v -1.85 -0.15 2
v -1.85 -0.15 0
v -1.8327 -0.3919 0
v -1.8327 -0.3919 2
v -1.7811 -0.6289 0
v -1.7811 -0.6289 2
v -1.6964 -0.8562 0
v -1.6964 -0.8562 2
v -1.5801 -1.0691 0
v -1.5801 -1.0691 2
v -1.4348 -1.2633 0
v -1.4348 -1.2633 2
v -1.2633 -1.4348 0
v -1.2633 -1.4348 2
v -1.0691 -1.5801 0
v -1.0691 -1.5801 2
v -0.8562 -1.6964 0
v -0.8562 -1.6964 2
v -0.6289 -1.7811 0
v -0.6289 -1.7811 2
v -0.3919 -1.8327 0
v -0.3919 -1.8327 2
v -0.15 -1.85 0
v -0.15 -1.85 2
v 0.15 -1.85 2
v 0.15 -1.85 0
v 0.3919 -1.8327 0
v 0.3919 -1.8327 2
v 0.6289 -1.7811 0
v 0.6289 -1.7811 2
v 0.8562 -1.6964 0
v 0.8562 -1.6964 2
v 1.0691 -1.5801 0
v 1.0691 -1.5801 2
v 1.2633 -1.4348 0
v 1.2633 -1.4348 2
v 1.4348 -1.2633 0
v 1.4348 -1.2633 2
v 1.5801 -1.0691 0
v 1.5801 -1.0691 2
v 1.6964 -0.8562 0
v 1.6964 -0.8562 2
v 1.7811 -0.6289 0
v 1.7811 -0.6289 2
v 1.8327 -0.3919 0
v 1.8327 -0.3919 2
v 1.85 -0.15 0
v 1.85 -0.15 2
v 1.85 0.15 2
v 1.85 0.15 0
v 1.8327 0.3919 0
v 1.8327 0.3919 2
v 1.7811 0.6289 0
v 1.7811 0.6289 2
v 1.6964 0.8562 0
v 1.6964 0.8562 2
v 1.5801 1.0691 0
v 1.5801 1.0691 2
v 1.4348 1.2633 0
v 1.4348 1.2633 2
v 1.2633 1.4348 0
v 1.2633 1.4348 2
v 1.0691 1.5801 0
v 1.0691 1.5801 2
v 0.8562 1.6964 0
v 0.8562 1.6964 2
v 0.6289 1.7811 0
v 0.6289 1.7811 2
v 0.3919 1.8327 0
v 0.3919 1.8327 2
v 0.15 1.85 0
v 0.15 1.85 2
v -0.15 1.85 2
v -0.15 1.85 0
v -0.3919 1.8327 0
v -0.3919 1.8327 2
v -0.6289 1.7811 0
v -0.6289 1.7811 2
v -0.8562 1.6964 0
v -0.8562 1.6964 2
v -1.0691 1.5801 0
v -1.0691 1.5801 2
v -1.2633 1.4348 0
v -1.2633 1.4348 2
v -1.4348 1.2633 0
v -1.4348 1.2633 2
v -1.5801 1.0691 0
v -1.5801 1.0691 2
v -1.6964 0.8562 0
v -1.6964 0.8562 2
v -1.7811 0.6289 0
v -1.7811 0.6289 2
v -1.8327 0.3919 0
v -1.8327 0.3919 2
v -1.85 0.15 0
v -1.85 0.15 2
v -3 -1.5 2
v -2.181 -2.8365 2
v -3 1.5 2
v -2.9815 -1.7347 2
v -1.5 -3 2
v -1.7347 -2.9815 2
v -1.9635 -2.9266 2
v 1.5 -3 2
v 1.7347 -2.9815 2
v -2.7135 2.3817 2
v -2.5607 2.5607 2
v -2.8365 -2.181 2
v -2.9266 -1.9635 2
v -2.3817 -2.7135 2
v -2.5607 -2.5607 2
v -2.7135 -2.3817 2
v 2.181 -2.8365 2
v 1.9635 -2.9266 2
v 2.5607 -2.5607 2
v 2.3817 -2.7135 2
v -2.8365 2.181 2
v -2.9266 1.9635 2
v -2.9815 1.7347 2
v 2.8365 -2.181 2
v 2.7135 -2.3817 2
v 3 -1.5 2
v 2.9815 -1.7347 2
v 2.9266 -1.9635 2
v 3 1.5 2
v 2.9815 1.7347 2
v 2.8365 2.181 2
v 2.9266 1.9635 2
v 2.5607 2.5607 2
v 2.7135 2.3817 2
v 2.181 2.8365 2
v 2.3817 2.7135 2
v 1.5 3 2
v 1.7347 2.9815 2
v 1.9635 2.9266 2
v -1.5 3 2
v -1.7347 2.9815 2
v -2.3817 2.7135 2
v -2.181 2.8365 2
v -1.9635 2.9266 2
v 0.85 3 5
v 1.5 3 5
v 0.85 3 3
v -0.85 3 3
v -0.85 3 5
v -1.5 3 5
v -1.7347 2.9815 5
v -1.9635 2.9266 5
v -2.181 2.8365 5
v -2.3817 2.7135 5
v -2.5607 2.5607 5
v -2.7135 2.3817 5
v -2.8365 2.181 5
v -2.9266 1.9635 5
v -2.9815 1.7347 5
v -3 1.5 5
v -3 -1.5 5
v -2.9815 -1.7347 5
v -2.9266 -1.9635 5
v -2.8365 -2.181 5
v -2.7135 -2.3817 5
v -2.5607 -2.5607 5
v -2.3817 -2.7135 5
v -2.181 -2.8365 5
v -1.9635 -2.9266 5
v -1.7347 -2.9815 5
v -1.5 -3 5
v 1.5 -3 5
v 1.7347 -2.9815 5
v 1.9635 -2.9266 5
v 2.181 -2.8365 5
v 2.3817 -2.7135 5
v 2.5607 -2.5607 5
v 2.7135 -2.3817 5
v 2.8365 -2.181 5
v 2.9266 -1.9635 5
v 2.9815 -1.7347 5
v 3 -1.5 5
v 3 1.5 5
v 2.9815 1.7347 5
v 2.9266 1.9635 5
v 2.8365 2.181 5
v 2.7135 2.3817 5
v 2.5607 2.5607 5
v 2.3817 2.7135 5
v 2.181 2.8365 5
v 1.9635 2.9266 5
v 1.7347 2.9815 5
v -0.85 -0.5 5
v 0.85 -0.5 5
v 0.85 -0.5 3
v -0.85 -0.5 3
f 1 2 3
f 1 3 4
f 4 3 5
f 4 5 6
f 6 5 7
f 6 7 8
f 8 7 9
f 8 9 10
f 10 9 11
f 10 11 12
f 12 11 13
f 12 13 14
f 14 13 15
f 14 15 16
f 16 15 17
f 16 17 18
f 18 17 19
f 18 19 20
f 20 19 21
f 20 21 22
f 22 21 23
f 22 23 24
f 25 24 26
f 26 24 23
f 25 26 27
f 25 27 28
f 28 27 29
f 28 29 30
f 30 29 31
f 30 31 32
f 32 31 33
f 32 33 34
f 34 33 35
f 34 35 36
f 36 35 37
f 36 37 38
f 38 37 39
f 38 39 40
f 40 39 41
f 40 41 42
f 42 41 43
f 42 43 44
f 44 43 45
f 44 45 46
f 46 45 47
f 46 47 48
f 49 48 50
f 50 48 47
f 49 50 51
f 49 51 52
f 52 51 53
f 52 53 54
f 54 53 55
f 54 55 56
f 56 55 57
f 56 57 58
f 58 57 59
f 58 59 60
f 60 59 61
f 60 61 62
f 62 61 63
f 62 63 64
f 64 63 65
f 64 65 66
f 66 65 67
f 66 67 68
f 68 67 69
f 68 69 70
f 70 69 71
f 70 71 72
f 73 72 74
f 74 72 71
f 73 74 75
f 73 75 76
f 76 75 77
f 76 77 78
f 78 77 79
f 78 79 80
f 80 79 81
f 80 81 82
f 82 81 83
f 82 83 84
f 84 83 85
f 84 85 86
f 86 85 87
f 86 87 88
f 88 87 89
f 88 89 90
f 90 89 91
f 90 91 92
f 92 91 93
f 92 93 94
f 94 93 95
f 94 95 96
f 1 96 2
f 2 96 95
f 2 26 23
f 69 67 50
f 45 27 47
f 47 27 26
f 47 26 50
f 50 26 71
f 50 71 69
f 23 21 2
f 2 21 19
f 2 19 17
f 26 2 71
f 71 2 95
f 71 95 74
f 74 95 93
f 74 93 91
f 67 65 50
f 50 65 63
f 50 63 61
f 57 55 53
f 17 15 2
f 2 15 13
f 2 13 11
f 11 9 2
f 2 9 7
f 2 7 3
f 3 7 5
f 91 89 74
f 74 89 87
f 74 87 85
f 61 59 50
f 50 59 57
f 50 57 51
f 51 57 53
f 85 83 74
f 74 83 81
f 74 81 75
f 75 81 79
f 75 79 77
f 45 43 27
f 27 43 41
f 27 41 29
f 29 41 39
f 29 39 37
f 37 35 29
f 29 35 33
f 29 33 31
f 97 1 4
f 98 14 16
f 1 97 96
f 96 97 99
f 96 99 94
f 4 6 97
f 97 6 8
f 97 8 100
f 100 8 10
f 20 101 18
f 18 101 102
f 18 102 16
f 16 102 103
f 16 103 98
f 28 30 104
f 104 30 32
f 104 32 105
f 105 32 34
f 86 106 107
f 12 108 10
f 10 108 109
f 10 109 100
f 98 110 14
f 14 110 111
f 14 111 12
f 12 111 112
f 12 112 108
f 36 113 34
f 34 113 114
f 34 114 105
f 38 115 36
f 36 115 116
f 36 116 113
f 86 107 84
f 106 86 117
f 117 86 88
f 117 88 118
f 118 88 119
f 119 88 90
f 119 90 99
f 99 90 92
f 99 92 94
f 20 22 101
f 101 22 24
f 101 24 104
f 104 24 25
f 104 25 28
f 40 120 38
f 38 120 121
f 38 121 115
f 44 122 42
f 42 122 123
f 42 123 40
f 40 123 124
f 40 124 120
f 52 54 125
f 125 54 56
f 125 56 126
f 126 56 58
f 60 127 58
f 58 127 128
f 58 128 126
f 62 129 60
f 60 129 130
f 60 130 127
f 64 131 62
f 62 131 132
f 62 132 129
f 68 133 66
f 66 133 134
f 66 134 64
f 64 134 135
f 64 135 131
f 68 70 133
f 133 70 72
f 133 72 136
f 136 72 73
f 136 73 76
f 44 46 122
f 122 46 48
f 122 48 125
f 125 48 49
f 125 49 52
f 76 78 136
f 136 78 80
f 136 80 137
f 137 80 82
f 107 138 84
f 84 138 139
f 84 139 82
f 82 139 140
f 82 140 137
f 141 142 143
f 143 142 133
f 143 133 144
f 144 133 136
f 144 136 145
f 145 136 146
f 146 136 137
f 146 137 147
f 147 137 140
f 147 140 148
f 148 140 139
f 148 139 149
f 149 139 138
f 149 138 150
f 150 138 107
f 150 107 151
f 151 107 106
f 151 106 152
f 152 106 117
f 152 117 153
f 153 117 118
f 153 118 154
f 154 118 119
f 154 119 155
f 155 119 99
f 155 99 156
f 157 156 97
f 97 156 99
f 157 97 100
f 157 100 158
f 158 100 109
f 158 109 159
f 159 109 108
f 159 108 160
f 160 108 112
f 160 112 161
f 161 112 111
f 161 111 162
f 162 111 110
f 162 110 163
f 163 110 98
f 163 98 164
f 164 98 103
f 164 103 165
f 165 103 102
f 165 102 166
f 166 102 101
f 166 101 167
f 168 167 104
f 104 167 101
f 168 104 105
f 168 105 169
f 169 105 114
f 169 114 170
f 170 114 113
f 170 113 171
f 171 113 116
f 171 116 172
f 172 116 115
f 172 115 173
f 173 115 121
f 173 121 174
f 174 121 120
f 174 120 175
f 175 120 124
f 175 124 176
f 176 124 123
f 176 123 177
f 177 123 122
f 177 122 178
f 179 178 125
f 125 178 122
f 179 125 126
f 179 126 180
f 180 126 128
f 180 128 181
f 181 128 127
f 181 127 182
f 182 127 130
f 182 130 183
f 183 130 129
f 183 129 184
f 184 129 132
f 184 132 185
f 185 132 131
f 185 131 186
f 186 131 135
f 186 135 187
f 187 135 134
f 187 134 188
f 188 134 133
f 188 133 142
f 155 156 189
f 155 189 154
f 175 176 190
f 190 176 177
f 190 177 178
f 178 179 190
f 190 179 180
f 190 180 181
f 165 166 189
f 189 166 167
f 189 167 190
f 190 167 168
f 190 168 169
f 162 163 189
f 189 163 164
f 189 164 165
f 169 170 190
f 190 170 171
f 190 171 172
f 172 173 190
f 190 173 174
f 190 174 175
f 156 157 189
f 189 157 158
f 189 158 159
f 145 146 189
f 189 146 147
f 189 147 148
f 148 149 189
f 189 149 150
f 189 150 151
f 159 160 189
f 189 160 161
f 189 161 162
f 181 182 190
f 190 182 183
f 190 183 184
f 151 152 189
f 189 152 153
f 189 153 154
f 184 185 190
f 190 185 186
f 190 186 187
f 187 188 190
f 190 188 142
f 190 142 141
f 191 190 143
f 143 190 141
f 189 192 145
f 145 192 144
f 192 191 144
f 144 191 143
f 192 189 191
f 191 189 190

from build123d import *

# Parameters (mm, degrees)
EXTRUDE_1_DEPTH     = 2
EXTRUDE_2_DEPTH     = 3
SKETCH_4_W          = 1.7
SKETCH_4_H          = 2
CUT_EXTRUDE_1_DEPTH = 3.5


with BuildPart() as part:
    # Эскиз1 → Бобышка-Вытянуть1 (new body)
    with BuildSketch(Plane.XY):
        with BuildLine():
            Line((-0.15, -1.85), (0.15, -1.85))
            ThreePointArc((0.15, -1.85), (1.352081528, -1.352081528), (1.85, -0.15))
            Line((1.85, -0.15), (1.85, 0.15))
            ThreePointArc((1.85, 0.15), (1.352081528, 1.352081528), (0.15, 1.85))
            Line((0.15, 1.85), (-0.15, 1.85))
            ThreePointArc((-0.15, 1.85), (-1.352081528, 1.352081528), (-1.85, 0.15))
            Line((-1.85, 0.15), (-1.85, -0.15))
            ThreePointArc((-1.85, -0.15), (-1.352081528, -1.352081528), (-0.15, -1.85))
        make_face()
    extrude(amount=EXTRUDE_1_DEPTH)

    # Эскиз2 → Бобышка-Вытянуть2 (add)
    with BuildSketch(Plane.XY.offset(2)):
        with BuildLine():
            Line((-1.5, -3), (1.5, -3))
            ThreePointArc((1.5, -3), (2.560660172, -2.560660172), (3, -1.5))
            Line((3, -1.5), (3, 1.5))
            ThreePointArc((3, 1.5), (2.560660172, 2.560660172), (1.5, 3))
            Line((1.5, 3), (-1.5, 3))
            ThreePointArc((-1.5, 3), (-2.560660172, 2.560660172), (-3, 1.5))
            Line((-3, 1.5), (-3, -1.5))
            ThreePointArc((-3, -1.5), (-2.560660172, -2.560660172), (-1.5, -3))
        make_face()
    extrude(amount=EXTRUDE_2_DEPTH)

    # Эскиз4 → Вырез-Вытянуть1 (cut)
    with BuildSketch(Plane(origin=(0, 3, 0), x_dir=(1, 0, 0), z_dir=(0, 1, 0))):
        with Locations((0, -4)):
            Rectangle(SKETCH_4_W, SKETCH_4_H)
    extrude(amount=-CUT_EXTRUDE_1_DEPTH, mode=Mode.SUBTRACT)


solid = part.part
